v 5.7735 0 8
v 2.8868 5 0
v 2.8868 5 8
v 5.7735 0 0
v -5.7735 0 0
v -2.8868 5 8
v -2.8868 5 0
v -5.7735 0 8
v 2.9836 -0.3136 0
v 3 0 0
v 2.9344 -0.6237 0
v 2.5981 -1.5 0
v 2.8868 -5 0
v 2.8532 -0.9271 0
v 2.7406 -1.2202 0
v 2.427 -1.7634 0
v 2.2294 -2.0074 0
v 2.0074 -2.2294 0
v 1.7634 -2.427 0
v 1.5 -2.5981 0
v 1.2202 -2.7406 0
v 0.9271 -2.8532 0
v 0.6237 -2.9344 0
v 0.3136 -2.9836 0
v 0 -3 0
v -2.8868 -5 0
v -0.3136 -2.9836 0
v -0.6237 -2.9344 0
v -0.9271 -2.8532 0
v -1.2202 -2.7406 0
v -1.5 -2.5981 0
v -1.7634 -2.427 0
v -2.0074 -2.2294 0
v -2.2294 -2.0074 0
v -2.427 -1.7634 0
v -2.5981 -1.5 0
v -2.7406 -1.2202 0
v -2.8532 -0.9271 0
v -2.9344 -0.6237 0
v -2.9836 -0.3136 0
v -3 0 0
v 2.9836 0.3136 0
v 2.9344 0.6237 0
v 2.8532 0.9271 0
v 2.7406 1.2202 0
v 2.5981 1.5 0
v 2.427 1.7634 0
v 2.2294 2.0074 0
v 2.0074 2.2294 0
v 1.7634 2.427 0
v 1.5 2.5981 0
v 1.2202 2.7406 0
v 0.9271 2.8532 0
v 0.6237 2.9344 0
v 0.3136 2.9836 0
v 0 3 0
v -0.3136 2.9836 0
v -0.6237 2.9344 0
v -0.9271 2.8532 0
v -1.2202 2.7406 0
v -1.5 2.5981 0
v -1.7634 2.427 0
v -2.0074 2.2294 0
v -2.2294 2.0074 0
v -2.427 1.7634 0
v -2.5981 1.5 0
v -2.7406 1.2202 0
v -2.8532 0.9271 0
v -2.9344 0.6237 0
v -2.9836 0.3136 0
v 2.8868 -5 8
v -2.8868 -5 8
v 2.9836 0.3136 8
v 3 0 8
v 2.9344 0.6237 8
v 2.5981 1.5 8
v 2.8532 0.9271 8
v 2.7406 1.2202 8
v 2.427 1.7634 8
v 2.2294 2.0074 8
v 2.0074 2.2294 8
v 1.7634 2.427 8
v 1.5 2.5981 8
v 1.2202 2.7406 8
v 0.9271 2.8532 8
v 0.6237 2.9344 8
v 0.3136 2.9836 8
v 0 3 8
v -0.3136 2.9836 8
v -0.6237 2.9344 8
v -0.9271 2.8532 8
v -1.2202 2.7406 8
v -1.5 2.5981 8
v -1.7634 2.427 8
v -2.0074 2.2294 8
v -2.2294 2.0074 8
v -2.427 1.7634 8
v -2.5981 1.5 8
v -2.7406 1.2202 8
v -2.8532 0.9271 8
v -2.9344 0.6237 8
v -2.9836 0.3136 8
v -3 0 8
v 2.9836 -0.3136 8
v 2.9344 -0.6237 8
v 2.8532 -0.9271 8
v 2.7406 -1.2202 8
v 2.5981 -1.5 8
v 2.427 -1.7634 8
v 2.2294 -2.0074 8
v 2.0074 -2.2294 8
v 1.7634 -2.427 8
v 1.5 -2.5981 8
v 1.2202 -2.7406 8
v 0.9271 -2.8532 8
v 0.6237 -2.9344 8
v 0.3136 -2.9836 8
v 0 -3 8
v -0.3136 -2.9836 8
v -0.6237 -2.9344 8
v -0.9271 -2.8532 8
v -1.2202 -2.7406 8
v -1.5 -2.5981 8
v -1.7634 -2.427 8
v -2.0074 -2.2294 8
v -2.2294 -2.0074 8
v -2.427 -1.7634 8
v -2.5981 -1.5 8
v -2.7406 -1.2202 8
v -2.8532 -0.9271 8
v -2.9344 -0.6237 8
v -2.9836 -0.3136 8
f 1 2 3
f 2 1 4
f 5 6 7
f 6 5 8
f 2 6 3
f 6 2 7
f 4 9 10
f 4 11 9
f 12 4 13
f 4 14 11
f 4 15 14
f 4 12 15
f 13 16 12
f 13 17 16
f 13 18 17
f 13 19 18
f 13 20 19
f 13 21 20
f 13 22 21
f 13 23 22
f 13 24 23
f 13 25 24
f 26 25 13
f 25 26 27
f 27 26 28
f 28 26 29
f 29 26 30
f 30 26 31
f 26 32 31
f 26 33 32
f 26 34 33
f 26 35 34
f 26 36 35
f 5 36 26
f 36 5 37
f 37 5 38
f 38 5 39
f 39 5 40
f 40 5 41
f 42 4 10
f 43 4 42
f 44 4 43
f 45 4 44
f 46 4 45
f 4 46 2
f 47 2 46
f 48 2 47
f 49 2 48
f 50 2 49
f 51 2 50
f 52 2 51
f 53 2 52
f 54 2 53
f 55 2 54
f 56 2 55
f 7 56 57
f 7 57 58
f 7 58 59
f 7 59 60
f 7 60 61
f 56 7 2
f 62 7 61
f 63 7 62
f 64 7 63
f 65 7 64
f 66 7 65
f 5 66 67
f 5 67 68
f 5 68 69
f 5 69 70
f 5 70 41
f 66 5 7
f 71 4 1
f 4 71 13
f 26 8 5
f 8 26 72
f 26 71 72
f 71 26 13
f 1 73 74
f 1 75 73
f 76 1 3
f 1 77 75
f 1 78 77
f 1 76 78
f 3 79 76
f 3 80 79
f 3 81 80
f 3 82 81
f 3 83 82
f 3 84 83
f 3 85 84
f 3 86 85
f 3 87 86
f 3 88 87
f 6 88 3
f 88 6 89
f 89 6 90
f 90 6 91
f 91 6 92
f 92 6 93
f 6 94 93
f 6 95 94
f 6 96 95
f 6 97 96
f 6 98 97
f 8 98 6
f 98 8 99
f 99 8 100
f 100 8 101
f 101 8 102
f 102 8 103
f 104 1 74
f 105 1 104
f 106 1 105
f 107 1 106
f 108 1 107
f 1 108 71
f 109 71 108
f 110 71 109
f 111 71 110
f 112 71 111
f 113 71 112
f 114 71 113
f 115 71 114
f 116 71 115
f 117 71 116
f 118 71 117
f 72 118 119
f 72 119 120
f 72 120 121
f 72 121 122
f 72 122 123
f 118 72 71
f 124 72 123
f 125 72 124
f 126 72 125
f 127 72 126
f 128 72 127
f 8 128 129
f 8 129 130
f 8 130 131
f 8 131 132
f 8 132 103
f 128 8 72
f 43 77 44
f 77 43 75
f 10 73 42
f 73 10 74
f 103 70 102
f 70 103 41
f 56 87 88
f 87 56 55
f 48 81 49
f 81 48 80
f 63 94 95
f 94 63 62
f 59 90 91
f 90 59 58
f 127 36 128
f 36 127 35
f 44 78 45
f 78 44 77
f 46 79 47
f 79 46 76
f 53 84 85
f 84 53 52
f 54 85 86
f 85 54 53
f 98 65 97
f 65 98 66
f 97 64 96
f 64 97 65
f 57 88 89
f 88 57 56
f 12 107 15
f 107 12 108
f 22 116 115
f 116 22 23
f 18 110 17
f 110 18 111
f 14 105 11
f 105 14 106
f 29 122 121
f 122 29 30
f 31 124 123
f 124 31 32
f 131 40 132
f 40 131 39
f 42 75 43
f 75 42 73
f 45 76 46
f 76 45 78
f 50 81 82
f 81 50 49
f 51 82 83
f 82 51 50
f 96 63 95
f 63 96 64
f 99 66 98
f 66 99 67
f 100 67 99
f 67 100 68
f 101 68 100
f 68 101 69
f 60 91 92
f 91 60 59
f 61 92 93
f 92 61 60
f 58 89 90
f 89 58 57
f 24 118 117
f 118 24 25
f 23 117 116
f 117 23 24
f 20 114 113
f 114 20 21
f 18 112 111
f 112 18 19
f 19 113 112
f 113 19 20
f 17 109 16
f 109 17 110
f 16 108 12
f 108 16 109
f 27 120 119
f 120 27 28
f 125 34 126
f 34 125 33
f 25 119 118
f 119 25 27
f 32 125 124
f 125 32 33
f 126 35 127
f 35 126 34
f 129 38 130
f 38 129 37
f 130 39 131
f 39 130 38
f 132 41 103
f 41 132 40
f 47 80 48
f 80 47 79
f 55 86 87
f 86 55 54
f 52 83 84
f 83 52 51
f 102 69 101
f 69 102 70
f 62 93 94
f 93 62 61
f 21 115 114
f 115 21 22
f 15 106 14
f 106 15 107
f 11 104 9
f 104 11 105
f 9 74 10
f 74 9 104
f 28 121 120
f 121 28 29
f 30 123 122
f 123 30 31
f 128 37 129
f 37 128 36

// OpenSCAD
//
// Copyright (C) 2016, Jason S. McMullan <jason.mcmullan@gmail.com>
// All rights reserved.
//
// Licensed under the MIT License:
//
// Permission is hereby granted, free of charge, to any person obtaining
// a copy of this software and associated documentation files (the "Software"),
// to deal in the Software without restriction, including without limitation
// the rights to use, copy, modify, merge, publish, distribute, sublicense,
// and/or sell copies of the Software, and to permit persons to whom the
// Software is furnished to do so, subject to the following conditions:
//
// The above copyright notice and this permission notice shall be included
// in all copies or substantial portions of the Software.
//
// THE SOFTWARE IS PROVIDED "AS IS", WITHOUT WARRANTY OF ANY KIND, EXPRESS OR
// IMPLIED, INCLUDING BUT NOT LIMITED TO THE WARRANTIES OF MERCHANTABILITY,
// FITNESS FOR A PARTICULAR PURPOSE AND NONINFRINGEMENT. IN NO EVENT SHALL THE
// AUTHORS OR COPYRIGHT HOLDERS BE LIABLE FOR ANY CLAIM, DAMAGES OR OTHER
// LIABILITY, WHETHER IN AN ACTION OF CONTRACT, TORT OR OTHERWISE, ARISING
// FROM, OUT OF OR IN CONNECTION WITH THE SOFTWARE OR THE USE OR OTHER
// DEALINGS IN THE SOFTWARE.
//

module ptfe_splicer(h=8)
{
    difference() {
        cylinder(d=10/sqrt(3)*2, h=h, $fn=6);
        translate([0, 0, -0.1]) cylinder(d=6, h=h+0.2, $fn = 60);
    }
}

ptfe_splicer();
// vim: set shiftwidth=4 expandtab: //
